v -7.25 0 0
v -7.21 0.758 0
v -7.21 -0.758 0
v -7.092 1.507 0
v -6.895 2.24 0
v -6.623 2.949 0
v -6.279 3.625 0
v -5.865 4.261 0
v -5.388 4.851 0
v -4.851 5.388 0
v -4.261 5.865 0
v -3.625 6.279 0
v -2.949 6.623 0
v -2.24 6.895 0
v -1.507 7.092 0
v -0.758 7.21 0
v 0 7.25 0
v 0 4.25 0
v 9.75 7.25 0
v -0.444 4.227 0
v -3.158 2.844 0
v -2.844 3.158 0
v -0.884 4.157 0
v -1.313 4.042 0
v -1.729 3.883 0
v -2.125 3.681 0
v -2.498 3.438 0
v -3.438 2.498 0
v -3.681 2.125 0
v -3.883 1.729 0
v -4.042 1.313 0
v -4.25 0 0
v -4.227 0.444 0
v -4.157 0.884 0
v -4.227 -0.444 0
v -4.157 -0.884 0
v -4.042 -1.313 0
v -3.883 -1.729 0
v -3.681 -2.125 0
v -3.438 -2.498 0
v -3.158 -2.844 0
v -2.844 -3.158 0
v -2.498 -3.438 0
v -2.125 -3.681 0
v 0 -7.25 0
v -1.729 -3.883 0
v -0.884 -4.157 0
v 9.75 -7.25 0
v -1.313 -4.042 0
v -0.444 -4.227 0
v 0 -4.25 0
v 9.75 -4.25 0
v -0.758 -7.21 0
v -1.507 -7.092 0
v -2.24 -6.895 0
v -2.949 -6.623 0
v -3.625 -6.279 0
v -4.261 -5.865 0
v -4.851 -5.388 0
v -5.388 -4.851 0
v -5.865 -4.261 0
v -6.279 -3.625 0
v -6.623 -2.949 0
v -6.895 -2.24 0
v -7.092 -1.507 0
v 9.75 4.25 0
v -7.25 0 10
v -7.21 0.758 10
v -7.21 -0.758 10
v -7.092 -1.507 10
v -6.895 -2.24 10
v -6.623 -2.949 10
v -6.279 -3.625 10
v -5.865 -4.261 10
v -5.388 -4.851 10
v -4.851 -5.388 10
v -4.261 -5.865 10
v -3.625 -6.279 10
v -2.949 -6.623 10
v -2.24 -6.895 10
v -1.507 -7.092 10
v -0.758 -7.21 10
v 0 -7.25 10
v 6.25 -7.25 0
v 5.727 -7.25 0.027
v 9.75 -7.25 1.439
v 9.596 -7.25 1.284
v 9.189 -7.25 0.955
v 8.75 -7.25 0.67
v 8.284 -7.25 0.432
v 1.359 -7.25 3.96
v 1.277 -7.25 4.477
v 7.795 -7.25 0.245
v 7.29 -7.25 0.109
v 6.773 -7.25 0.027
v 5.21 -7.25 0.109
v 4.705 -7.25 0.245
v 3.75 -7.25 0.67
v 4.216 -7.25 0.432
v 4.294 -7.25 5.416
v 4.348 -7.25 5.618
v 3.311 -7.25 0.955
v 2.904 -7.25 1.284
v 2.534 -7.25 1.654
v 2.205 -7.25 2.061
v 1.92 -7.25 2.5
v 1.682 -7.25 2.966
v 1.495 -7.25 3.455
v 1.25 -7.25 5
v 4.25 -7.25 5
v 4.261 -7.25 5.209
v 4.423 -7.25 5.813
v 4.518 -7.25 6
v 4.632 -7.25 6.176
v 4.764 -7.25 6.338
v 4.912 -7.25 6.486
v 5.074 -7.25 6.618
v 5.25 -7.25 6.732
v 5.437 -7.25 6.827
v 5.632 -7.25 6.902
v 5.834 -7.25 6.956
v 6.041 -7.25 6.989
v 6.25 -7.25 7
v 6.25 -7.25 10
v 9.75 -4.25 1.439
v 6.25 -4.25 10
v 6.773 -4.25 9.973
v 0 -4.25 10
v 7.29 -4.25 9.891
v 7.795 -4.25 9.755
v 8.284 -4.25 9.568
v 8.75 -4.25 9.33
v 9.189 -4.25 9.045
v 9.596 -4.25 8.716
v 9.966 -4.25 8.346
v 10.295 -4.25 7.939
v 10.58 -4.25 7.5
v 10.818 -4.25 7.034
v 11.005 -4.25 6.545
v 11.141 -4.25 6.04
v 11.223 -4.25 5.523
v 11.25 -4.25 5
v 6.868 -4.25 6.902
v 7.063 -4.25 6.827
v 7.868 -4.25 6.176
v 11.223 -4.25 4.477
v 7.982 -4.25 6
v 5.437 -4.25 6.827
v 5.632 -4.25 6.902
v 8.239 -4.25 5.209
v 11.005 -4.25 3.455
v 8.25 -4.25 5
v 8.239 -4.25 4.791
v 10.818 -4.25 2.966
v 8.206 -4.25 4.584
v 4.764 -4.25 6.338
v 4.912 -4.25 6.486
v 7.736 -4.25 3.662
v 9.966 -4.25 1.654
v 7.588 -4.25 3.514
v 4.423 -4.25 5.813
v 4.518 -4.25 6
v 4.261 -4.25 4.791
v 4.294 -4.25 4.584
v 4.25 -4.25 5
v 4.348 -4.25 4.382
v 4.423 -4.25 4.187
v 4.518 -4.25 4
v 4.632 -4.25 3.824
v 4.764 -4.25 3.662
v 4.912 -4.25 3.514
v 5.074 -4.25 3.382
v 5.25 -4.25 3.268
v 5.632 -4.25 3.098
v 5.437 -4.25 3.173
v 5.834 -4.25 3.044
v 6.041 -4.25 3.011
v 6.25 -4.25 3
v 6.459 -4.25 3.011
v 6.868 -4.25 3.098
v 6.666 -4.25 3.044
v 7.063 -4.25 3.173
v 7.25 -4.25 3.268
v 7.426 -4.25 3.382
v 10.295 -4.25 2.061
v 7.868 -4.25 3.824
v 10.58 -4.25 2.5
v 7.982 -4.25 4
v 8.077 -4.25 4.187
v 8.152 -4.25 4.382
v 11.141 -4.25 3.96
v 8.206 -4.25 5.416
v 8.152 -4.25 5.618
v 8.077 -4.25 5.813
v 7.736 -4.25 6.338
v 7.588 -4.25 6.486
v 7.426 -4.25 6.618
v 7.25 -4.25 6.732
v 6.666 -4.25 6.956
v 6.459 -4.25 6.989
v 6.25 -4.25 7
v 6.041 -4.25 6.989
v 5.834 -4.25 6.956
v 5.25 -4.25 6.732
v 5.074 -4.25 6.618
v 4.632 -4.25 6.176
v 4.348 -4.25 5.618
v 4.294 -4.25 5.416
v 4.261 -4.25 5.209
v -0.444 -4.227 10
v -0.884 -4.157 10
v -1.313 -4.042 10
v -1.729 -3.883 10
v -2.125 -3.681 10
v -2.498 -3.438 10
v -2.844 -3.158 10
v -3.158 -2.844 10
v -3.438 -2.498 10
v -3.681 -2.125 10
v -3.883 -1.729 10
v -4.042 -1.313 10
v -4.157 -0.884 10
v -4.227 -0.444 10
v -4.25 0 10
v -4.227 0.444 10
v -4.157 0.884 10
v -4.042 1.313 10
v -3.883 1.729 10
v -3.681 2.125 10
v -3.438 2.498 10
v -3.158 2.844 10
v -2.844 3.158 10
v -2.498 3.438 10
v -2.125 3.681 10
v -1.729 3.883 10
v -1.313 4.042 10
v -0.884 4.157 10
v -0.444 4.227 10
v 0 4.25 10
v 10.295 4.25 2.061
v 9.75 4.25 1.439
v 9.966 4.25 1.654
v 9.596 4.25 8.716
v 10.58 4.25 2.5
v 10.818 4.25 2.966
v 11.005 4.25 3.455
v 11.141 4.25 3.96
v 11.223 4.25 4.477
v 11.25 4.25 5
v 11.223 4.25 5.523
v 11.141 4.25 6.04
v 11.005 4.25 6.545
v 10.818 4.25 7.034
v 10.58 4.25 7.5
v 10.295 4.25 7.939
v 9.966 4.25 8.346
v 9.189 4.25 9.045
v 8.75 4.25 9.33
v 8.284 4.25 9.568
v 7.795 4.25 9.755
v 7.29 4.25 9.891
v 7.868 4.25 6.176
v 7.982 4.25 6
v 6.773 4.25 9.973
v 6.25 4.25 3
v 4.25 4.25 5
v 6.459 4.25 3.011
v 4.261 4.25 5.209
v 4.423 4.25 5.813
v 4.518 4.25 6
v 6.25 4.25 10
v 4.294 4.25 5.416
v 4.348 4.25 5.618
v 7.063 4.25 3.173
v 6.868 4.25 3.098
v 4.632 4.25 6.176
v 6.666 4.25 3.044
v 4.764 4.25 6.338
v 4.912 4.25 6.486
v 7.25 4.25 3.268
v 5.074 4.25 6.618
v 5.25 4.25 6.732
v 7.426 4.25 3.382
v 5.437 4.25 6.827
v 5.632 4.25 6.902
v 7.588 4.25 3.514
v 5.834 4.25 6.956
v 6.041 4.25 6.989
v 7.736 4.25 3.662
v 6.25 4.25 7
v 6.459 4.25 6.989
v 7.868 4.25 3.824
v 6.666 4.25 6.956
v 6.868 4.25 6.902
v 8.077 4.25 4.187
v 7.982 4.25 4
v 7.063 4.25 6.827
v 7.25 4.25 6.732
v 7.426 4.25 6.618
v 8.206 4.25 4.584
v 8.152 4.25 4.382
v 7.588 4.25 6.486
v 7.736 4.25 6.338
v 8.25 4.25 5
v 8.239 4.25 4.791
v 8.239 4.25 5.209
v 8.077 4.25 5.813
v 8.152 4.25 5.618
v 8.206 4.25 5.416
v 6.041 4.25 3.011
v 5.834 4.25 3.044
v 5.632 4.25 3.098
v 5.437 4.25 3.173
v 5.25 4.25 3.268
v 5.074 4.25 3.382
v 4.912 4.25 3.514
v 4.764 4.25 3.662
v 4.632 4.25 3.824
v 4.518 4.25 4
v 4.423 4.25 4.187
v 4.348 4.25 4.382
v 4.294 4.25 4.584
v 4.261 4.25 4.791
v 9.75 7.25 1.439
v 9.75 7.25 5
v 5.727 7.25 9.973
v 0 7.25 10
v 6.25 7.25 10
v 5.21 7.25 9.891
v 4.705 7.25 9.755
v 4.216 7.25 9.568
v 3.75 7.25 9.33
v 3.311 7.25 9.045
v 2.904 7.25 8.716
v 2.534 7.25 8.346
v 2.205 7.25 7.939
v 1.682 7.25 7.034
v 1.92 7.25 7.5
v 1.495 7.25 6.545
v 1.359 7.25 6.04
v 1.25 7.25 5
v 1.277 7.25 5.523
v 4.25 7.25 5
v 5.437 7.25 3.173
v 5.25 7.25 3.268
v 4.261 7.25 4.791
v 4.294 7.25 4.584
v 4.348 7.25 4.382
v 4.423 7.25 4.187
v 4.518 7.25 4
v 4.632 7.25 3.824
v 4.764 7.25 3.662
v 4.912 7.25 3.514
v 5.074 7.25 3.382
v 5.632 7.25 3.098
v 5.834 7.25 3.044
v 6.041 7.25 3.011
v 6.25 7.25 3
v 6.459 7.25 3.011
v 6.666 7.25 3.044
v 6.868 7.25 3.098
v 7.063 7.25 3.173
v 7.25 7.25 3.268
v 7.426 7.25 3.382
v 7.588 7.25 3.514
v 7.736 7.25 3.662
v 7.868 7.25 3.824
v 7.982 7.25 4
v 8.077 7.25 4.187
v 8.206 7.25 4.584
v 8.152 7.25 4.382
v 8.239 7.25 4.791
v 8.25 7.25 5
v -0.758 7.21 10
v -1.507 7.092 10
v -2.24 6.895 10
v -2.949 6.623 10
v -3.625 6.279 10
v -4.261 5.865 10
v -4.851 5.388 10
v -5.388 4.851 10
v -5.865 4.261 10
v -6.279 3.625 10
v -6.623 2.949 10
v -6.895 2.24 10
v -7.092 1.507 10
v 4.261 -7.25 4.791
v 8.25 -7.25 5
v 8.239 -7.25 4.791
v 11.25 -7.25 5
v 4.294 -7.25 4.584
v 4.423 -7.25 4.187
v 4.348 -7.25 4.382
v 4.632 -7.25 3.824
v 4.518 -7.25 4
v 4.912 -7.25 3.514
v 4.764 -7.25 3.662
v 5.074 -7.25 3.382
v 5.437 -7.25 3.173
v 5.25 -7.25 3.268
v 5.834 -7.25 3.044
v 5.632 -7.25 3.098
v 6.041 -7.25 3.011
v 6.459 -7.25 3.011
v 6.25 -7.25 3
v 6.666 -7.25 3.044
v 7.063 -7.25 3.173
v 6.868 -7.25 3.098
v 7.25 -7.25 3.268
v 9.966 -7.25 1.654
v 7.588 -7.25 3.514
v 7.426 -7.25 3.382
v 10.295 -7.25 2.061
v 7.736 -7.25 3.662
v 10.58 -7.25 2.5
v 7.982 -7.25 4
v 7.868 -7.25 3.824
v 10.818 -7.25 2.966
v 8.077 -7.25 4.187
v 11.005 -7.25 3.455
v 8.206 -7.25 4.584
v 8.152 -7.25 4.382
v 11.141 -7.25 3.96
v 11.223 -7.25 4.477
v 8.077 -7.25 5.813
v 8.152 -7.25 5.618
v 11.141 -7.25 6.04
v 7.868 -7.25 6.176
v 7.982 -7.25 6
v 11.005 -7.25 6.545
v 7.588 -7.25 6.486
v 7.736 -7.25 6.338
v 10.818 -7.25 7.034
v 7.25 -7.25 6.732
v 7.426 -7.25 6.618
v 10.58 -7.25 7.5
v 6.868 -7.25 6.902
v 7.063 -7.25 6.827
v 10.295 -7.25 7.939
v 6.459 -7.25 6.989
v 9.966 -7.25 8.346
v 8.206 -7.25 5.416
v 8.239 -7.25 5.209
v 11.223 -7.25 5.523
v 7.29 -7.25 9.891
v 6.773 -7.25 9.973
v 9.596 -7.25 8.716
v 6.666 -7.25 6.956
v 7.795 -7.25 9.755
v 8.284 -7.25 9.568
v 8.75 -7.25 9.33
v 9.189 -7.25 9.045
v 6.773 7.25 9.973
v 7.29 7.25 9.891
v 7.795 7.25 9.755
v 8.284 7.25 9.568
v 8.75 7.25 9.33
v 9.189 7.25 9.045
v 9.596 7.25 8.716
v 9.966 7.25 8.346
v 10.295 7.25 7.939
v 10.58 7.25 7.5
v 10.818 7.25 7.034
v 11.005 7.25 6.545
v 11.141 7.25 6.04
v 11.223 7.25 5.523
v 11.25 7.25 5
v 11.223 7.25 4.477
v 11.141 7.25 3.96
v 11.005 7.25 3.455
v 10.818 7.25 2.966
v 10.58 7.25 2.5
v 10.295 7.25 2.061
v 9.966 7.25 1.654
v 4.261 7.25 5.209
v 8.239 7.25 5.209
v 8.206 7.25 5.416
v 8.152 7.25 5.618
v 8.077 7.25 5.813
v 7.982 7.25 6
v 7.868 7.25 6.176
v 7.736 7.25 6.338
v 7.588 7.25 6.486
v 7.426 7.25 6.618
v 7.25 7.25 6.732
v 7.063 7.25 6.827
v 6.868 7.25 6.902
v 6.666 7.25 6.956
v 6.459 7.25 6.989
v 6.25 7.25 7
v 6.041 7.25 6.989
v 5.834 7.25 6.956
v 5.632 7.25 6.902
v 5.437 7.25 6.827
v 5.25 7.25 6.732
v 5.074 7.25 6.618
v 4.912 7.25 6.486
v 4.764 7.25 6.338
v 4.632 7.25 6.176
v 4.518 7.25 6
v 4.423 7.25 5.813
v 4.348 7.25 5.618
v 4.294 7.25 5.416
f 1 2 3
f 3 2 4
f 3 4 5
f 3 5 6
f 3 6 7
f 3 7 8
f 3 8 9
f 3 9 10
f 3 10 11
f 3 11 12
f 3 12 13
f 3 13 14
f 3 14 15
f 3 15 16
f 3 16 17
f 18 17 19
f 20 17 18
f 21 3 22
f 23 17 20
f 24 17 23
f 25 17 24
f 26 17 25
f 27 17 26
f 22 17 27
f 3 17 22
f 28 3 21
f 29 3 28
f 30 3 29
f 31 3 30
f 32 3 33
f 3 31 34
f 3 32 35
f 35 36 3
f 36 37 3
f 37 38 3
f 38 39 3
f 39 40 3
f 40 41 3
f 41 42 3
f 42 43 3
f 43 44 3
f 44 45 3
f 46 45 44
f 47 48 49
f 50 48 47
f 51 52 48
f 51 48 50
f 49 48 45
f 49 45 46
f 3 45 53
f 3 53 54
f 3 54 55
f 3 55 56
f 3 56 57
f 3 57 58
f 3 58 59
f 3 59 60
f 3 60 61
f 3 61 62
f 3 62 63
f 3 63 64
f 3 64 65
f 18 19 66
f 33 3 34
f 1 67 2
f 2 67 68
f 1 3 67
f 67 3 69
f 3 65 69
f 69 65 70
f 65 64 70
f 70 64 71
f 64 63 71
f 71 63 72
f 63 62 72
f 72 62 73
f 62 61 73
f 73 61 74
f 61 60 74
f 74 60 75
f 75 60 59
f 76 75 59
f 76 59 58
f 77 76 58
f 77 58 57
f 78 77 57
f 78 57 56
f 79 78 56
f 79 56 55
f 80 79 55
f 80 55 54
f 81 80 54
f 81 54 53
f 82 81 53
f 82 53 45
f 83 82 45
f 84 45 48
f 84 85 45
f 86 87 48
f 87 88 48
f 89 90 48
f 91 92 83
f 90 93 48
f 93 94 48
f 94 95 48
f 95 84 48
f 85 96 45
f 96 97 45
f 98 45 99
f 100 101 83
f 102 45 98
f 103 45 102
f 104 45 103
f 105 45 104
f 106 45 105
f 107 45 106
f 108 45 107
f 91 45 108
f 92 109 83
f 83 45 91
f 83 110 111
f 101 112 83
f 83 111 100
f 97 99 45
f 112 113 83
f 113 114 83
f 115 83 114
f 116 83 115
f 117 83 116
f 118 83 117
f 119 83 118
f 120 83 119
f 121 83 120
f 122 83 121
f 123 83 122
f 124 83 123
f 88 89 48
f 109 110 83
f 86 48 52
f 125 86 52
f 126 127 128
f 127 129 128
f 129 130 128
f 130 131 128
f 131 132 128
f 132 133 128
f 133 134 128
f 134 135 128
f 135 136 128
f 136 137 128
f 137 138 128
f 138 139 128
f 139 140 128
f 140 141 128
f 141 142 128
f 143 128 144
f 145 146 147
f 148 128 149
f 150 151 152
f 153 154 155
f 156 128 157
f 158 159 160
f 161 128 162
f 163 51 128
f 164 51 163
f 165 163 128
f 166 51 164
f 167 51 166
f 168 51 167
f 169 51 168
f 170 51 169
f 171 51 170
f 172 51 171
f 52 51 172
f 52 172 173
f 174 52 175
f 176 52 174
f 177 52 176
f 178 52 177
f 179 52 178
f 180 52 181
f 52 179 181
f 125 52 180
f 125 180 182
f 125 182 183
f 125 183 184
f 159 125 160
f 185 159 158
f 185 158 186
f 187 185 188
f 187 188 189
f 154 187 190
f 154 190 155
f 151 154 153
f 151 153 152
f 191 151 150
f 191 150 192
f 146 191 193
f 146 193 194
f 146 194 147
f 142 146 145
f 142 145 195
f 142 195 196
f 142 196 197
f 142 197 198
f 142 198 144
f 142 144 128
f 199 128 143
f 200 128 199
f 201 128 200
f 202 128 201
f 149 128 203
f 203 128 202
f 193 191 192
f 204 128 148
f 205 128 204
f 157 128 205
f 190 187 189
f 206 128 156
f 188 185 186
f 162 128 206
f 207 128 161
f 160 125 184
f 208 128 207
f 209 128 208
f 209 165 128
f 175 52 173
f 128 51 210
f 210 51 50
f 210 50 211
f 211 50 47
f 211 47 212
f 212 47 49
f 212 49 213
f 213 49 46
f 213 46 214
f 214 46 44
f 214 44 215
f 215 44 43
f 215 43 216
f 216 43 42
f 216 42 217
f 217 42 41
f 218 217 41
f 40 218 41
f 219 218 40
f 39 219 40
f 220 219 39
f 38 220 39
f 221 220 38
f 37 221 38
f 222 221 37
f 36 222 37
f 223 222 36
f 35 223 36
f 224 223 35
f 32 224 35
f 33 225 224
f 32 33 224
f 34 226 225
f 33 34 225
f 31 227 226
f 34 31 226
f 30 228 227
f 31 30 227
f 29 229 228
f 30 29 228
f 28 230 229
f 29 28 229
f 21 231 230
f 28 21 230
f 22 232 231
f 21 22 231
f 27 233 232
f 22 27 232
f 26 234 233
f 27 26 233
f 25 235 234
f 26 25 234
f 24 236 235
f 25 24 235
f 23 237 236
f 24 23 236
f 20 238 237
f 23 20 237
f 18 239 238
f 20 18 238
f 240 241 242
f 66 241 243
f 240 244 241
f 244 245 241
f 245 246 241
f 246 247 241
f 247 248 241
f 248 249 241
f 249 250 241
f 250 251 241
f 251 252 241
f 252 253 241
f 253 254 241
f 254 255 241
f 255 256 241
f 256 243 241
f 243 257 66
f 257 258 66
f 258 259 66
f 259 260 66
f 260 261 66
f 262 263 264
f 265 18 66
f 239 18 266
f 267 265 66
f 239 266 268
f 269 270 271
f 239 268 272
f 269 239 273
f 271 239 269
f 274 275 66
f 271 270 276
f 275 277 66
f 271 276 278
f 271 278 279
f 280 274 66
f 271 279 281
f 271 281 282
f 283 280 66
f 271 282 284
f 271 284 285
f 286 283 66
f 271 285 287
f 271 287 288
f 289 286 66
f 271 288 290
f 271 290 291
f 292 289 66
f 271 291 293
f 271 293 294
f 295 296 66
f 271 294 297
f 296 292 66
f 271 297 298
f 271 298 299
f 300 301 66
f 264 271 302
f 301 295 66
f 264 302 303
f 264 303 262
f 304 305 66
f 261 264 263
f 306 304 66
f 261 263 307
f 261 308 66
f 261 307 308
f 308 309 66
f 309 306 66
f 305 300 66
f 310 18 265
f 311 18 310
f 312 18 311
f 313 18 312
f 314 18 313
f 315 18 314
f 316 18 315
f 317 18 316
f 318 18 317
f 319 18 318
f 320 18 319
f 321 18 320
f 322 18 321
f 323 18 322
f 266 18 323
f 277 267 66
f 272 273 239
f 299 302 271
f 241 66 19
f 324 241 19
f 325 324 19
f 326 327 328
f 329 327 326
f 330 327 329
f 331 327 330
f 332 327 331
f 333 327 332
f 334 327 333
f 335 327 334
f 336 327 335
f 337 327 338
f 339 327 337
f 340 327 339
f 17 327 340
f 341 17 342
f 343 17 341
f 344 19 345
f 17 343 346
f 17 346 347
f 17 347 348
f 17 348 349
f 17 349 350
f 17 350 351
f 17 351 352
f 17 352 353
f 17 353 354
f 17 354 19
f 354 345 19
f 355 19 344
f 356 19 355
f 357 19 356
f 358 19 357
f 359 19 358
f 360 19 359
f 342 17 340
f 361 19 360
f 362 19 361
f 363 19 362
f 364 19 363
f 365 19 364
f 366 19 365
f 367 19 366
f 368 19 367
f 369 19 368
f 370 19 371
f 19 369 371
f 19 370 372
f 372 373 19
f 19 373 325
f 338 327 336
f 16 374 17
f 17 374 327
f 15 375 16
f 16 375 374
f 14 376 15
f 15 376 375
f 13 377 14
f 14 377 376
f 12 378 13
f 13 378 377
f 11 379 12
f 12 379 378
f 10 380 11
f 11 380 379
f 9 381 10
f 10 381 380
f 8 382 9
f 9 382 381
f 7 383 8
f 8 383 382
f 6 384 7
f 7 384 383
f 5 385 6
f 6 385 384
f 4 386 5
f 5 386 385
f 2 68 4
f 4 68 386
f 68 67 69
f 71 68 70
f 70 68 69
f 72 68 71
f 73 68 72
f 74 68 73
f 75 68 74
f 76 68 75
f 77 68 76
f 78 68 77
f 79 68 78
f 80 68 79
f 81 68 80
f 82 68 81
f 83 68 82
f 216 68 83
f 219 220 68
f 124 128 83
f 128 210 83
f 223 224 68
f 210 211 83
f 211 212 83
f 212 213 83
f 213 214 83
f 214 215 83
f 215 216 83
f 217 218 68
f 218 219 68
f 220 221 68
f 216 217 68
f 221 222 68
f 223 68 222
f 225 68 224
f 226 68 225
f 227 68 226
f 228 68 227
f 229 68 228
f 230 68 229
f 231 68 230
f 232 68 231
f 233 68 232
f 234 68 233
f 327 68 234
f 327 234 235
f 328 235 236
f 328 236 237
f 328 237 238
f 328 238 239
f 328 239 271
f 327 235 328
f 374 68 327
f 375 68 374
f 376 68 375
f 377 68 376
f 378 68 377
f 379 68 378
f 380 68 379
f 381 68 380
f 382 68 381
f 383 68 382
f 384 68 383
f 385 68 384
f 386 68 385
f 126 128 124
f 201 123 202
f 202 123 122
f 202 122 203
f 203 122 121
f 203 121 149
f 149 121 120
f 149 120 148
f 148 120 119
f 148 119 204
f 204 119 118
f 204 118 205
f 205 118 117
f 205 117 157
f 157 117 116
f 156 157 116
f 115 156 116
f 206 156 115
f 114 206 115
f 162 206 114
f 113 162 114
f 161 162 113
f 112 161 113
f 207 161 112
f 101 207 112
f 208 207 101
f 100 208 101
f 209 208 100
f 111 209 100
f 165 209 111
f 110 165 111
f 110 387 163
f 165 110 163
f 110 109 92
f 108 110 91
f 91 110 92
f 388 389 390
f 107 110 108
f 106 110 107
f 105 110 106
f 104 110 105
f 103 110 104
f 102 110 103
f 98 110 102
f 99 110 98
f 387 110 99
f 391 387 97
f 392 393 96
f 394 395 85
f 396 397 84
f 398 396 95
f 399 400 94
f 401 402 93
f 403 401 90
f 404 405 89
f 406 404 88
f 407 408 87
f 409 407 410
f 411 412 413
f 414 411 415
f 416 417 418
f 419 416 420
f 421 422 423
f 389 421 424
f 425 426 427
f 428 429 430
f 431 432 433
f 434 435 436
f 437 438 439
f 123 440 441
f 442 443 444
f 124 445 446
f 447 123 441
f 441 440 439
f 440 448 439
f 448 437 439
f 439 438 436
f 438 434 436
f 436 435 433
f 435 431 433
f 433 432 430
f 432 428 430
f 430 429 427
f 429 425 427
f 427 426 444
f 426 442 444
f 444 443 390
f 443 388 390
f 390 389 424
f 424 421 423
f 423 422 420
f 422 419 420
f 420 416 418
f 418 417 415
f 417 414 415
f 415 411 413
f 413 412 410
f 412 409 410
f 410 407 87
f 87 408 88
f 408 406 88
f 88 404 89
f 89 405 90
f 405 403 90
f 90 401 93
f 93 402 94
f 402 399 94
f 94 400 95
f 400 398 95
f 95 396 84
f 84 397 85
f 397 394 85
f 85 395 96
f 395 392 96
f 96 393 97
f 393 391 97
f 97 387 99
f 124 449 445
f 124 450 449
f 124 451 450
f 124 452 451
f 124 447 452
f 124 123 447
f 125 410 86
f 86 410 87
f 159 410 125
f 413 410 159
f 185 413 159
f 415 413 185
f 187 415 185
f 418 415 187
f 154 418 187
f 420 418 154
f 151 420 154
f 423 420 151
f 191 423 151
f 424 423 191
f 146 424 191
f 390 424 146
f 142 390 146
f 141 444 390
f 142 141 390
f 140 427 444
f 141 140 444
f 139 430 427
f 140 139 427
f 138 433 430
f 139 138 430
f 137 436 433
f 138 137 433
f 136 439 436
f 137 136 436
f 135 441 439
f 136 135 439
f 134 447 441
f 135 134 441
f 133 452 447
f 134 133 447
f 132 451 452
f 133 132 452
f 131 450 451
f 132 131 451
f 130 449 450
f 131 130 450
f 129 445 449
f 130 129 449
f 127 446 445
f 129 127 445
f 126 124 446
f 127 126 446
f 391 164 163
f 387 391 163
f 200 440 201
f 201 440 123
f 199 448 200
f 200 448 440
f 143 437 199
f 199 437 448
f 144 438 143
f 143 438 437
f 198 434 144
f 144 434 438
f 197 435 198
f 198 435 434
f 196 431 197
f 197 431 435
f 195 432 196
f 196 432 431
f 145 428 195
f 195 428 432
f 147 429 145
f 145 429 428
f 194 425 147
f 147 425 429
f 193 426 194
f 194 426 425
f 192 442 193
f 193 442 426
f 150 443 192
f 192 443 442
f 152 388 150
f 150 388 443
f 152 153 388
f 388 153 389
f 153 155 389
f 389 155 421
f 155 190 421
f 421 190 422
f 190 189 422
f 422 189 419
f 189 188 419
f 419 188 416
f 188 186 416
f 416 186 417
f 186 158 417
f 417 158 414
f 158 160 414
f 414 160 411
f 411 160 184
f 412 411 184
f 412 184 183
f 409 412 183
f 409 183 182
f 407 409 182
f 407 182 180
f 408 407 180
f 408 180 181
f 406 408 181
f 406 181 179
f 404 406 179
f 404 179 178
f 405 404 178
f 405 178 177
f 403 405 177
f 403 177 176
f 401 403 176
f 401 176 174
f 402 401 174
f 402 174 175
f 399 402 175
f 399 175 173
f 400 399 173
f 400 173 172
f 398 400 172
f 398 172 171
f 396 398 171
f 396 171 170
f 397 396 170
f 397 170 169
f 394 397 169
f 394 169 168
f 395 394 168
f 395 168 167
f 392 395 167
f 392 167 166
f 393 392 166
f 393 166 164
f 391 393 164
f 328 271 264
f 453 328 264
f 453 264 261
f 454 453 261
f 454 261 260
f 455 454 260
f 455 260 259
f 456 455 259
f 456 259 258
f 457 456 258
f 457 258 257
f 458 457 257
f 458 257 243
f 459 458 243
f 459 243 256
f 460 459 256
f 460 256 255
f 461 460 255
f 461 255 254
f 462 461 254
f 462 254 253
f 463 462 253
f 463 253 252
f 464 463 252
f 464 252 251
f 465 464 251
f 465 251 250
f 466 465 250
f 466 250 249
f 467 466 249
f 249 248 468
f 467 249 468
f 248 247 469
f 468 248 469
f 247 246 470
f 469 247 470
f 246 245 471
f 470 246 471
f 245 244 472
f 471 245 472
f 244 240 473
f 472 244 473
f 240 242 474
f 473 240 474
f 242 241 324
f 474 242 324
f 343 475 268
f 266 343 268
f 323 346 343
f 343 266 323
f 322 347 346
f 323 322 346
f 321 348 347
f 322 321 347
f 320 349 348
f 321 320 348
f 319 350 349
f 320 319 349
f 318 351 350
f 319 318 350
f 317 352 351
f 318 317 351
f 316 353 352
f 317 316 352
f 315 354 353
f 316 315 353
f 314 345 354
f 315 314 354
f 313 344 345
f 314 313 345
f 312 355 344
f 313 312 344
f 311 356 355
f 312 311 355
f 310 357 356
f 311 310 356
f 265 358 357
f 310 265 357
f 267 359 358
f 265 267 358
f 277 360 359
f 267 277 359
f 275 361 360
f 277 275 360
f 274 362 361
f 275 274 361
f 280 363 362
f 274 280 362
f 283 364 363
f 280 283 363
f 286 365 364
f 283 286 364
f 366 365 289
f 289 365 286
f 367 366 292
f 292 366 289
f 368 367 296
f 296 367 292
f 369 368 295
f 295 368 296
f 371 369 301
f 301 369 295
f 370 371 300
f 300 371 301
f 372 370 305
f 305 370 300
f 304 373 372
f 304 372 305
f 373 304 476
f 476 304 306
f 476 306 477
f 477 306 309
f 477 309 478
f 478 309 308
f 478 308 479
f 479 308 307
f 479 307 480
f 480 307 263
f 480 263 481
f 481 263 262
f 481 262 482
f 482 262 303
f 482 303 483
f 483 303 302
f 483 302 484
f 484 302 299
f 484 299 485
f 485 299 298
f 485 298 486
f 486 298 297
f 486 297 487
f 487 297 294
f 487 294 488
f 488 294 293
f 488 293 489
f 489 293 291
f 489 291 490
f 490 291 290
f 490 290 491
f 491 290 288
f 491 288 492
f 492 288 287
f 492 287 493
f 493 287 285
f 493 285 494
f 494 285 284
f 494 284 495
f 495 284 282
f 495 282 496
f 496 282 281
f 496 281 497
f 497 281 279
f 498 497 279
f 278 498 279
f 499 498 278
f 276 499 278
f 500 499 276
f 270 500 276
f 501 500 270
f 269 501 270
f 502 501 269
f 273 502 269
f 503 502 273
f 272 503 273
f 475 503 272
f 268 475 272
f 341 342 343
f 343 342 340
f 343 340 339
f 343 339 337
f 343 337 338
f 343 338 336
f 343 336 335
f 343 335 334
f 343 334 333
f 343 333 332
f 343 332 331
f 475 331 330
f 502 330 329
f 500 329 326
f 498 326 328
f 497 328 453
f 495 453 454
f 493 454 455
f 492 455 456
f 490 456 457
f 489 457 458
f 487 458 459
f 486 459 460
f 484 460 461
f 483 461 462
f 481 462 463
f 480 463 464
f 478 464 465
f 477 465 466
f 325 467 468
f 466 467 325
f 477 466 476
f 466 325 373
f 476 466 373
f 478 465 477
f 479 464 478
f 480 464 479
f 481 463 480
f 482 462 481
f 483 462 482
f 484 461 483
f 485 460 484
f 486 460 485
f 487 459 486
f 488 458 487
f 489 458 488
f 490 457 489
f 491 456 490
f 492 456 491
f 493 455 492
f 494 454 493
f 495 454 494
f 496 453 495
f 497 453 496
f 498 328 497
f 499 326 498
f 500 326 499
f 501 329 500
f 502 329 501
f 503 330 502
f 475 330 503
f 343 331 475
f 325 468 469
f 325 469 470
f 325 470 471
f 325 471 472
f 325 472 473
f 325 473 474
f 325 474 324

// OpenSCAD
// file: ../config.scad
// This is the config for an M8 Mendel sized printer.

//Constants (These are used throughout the whole printer)
frameroddia = 8.5; //the frame rod diameter
smoothroddia = 8.5; //the smooth rod diameter
bushingod = 16; //The prusabushing OD, you can change this to 15 to use LM8UU linear bearings 
bushingheight = 11;
tapsize = 7; //The size of the hole before tapping. 7mm seems to work well.

nemasize = 1.7; //Nema Size (in imperial)
motorcenter = 23; //center hole size for the motor. If your motor center flange is smaller you can beef up parts this way. 
motorshaftdia = 5; // Motor shaft diameter
motorcenterwall = 5;
motorbody = 43;

pulleypitch = 5;
pulleyteeth = 8;
pulleydia = 12; // this will be replaced by the above soon

/* The Mixtape Mendel uses two types of fasteners. One is the "primary" type, which is the larger type that builds the structure,
 which was profiled above as "frameroddia, etc..". In the case of the Mendel, it is M8 threaded rod (Huxley, M6). It also uses "Secondary" hardware. This is a smaller screw used to retain tool heads, attach motors and lock pulleys on shafts. In the case of Mendel this is M3 or M4. M3 is preferred as it is cheaper. Tapping is quite the challenge though. 
*/
nutheight = 7; //Primary
nutdia = 14.8; //Primary
secscrewdia = 4; //secondary 
secscrewtap = 2.5; // secondary

beltthick = 2; //Thickness of the timing belt
beltwidth = 7; // Belt width, used for the y bed clamps so can be a little bugger than actual

mdfthick = 6; //thickness of MDF (You can use other wood, acrylic, lexan, etc)

bearingid = 8; // 608
bearingod = 22; // 608
bearinginnerrace = 12; // the amount of the inner race diameter exposed

tapping = true; //turn tapping on/off, not implemented yet. (Version 0.3 might implement this) Version 0.2 has tapping by default right now
layerheight = 0.32; //skeinforge/slicer layer height, used for the idler wasers right now. 

//Beef/tab/wall
motortabwall = 2.5;

//Frame Vertex
vertexwall = 3;
triangle = 60; // the angle the bottom vertexes have relative to horizontal

//Y Motor Mount
ymountthick = 9;
ywallmulti = 2; //the wall thickness multiplier for the bits that interface with the frame rod

//Y Belt Clamps
clampholewall = 3;
	//(bushingod-pulleydia)/2

//Bar Clamps
barclampwall = 4;

//Top Piece
toppiecethick = 8;
toprodwall = 4;
toprodspacing = 72;
siderodwall = 4;

// X End Pieces
xrodspacing = 50; //rod spacing center to center
nutwall = 3; //wall thickness around nut and bushing
towergap= 10; // 0.75 diameter wrap should be ok i think. Make a flag for full wrap and no square for bushings/linear bearings maybe?
//Motor
motorinterface = 6; //thickness of the motor mount (6 works well, need to decouple from top piece)

//X Carriage 
carriagewidth = 50;
bushingwall = 3;
backwall = 5;
tooldia = 17;
platformthick = 7;
platformextension = 40; 
clampthick = 4; //The two pieces that clamp around the belt

//Z Coupler
couplerwall = 4;
couplerheight = 34; // Make this double 3/4 your shaft length
 
//Extruder (Plastic Pusher)
extruderthick = 5;
bowdencabledia = 4;
bowdenwall = 3;
idlerwall = 2;
pinchwheeldia = 8;

//Utility Clamp 
utilityclampwall = 3;

//Groove Mount
	//Default is pretty good for MakerGear insulators
groovedia = 12;
grooveheight = 4.5;

//pen holder 
penwall = 3 ;
shaftheight = 30;
// main file
/*
Copyright (C) 2011  Steve Kelly

This program is free software; you can redistribute it and/or
modify it under the terms of the GNU General Public License
as published by the Free Software Foundation; either version 2
of the License, or (at your option) any later version.

This program is distributed in the hope that it will be useful,
but WITHOUT ANY WARRANTY; without even the implied warranty of
MERCHANTABILITY or FITNESS FOR A PARTICULAR PURPOSE.  See the
GNU General Public License for more details.

You should have received a copy of the GNU General Public License
along with this program; if not, write to the Free Software
Foundation, Inc., 51 Franklin Street, Fifth Floor, Boston, MA  02110-1301, USA.
*/

include <../config.scad>;

$fn = 60;

difference() {
	union() {
	cylinder(r = smoothroddia/2+utilityclampwall, h=secscrewdia+utilityclampwall*2);
	translate([smoothroddia/2+secscrewdia/2,smoothroddia/2+utilityclampwall,secscrewdia/2+utilityclampwall])rotate([90,0,0])cylinder(r = secscrewdia/2+utilityclampwall, h=smoothroddia+utilityclampwall*2);
	translate([0,-smoothroddia/2-utilityclampwall,0])cube([secscrewdia+smoothroddia/2+utilityclampwall/2, smoothroddia+ utilityclampwall*2, secscrewdia/2 + utilityclampwall]);
	translate([0,-smoothroddia/2-utilityclampwall,0])cube([secscrewdia/2+smoothroddia/2, smoothroddia+ utilityclampwall*2, secscrewdia + utilityclampwall*2]);		
	}
translate([0,0,-1])cylinder(r = smoothroddia/2, h=secscrewdia+utilityclampwall*2+2);	
translate([smoothroddia/2+secscrewdia/2,smoothroddia/2+utilityclampwall+1,secscrewdia/2+utilityclampwall])rotate([90,0,0])cylinder(r = secscrewdia/2, h=smoothroddia+utilityclampwall*2+2);
translate([0,-smoothroddia/2,-1])cube([secscrewdia+smoothroddia/2+utilityclampwall, smoothroddia, secscrewdia + utilityclampwall*2+2]);
}
